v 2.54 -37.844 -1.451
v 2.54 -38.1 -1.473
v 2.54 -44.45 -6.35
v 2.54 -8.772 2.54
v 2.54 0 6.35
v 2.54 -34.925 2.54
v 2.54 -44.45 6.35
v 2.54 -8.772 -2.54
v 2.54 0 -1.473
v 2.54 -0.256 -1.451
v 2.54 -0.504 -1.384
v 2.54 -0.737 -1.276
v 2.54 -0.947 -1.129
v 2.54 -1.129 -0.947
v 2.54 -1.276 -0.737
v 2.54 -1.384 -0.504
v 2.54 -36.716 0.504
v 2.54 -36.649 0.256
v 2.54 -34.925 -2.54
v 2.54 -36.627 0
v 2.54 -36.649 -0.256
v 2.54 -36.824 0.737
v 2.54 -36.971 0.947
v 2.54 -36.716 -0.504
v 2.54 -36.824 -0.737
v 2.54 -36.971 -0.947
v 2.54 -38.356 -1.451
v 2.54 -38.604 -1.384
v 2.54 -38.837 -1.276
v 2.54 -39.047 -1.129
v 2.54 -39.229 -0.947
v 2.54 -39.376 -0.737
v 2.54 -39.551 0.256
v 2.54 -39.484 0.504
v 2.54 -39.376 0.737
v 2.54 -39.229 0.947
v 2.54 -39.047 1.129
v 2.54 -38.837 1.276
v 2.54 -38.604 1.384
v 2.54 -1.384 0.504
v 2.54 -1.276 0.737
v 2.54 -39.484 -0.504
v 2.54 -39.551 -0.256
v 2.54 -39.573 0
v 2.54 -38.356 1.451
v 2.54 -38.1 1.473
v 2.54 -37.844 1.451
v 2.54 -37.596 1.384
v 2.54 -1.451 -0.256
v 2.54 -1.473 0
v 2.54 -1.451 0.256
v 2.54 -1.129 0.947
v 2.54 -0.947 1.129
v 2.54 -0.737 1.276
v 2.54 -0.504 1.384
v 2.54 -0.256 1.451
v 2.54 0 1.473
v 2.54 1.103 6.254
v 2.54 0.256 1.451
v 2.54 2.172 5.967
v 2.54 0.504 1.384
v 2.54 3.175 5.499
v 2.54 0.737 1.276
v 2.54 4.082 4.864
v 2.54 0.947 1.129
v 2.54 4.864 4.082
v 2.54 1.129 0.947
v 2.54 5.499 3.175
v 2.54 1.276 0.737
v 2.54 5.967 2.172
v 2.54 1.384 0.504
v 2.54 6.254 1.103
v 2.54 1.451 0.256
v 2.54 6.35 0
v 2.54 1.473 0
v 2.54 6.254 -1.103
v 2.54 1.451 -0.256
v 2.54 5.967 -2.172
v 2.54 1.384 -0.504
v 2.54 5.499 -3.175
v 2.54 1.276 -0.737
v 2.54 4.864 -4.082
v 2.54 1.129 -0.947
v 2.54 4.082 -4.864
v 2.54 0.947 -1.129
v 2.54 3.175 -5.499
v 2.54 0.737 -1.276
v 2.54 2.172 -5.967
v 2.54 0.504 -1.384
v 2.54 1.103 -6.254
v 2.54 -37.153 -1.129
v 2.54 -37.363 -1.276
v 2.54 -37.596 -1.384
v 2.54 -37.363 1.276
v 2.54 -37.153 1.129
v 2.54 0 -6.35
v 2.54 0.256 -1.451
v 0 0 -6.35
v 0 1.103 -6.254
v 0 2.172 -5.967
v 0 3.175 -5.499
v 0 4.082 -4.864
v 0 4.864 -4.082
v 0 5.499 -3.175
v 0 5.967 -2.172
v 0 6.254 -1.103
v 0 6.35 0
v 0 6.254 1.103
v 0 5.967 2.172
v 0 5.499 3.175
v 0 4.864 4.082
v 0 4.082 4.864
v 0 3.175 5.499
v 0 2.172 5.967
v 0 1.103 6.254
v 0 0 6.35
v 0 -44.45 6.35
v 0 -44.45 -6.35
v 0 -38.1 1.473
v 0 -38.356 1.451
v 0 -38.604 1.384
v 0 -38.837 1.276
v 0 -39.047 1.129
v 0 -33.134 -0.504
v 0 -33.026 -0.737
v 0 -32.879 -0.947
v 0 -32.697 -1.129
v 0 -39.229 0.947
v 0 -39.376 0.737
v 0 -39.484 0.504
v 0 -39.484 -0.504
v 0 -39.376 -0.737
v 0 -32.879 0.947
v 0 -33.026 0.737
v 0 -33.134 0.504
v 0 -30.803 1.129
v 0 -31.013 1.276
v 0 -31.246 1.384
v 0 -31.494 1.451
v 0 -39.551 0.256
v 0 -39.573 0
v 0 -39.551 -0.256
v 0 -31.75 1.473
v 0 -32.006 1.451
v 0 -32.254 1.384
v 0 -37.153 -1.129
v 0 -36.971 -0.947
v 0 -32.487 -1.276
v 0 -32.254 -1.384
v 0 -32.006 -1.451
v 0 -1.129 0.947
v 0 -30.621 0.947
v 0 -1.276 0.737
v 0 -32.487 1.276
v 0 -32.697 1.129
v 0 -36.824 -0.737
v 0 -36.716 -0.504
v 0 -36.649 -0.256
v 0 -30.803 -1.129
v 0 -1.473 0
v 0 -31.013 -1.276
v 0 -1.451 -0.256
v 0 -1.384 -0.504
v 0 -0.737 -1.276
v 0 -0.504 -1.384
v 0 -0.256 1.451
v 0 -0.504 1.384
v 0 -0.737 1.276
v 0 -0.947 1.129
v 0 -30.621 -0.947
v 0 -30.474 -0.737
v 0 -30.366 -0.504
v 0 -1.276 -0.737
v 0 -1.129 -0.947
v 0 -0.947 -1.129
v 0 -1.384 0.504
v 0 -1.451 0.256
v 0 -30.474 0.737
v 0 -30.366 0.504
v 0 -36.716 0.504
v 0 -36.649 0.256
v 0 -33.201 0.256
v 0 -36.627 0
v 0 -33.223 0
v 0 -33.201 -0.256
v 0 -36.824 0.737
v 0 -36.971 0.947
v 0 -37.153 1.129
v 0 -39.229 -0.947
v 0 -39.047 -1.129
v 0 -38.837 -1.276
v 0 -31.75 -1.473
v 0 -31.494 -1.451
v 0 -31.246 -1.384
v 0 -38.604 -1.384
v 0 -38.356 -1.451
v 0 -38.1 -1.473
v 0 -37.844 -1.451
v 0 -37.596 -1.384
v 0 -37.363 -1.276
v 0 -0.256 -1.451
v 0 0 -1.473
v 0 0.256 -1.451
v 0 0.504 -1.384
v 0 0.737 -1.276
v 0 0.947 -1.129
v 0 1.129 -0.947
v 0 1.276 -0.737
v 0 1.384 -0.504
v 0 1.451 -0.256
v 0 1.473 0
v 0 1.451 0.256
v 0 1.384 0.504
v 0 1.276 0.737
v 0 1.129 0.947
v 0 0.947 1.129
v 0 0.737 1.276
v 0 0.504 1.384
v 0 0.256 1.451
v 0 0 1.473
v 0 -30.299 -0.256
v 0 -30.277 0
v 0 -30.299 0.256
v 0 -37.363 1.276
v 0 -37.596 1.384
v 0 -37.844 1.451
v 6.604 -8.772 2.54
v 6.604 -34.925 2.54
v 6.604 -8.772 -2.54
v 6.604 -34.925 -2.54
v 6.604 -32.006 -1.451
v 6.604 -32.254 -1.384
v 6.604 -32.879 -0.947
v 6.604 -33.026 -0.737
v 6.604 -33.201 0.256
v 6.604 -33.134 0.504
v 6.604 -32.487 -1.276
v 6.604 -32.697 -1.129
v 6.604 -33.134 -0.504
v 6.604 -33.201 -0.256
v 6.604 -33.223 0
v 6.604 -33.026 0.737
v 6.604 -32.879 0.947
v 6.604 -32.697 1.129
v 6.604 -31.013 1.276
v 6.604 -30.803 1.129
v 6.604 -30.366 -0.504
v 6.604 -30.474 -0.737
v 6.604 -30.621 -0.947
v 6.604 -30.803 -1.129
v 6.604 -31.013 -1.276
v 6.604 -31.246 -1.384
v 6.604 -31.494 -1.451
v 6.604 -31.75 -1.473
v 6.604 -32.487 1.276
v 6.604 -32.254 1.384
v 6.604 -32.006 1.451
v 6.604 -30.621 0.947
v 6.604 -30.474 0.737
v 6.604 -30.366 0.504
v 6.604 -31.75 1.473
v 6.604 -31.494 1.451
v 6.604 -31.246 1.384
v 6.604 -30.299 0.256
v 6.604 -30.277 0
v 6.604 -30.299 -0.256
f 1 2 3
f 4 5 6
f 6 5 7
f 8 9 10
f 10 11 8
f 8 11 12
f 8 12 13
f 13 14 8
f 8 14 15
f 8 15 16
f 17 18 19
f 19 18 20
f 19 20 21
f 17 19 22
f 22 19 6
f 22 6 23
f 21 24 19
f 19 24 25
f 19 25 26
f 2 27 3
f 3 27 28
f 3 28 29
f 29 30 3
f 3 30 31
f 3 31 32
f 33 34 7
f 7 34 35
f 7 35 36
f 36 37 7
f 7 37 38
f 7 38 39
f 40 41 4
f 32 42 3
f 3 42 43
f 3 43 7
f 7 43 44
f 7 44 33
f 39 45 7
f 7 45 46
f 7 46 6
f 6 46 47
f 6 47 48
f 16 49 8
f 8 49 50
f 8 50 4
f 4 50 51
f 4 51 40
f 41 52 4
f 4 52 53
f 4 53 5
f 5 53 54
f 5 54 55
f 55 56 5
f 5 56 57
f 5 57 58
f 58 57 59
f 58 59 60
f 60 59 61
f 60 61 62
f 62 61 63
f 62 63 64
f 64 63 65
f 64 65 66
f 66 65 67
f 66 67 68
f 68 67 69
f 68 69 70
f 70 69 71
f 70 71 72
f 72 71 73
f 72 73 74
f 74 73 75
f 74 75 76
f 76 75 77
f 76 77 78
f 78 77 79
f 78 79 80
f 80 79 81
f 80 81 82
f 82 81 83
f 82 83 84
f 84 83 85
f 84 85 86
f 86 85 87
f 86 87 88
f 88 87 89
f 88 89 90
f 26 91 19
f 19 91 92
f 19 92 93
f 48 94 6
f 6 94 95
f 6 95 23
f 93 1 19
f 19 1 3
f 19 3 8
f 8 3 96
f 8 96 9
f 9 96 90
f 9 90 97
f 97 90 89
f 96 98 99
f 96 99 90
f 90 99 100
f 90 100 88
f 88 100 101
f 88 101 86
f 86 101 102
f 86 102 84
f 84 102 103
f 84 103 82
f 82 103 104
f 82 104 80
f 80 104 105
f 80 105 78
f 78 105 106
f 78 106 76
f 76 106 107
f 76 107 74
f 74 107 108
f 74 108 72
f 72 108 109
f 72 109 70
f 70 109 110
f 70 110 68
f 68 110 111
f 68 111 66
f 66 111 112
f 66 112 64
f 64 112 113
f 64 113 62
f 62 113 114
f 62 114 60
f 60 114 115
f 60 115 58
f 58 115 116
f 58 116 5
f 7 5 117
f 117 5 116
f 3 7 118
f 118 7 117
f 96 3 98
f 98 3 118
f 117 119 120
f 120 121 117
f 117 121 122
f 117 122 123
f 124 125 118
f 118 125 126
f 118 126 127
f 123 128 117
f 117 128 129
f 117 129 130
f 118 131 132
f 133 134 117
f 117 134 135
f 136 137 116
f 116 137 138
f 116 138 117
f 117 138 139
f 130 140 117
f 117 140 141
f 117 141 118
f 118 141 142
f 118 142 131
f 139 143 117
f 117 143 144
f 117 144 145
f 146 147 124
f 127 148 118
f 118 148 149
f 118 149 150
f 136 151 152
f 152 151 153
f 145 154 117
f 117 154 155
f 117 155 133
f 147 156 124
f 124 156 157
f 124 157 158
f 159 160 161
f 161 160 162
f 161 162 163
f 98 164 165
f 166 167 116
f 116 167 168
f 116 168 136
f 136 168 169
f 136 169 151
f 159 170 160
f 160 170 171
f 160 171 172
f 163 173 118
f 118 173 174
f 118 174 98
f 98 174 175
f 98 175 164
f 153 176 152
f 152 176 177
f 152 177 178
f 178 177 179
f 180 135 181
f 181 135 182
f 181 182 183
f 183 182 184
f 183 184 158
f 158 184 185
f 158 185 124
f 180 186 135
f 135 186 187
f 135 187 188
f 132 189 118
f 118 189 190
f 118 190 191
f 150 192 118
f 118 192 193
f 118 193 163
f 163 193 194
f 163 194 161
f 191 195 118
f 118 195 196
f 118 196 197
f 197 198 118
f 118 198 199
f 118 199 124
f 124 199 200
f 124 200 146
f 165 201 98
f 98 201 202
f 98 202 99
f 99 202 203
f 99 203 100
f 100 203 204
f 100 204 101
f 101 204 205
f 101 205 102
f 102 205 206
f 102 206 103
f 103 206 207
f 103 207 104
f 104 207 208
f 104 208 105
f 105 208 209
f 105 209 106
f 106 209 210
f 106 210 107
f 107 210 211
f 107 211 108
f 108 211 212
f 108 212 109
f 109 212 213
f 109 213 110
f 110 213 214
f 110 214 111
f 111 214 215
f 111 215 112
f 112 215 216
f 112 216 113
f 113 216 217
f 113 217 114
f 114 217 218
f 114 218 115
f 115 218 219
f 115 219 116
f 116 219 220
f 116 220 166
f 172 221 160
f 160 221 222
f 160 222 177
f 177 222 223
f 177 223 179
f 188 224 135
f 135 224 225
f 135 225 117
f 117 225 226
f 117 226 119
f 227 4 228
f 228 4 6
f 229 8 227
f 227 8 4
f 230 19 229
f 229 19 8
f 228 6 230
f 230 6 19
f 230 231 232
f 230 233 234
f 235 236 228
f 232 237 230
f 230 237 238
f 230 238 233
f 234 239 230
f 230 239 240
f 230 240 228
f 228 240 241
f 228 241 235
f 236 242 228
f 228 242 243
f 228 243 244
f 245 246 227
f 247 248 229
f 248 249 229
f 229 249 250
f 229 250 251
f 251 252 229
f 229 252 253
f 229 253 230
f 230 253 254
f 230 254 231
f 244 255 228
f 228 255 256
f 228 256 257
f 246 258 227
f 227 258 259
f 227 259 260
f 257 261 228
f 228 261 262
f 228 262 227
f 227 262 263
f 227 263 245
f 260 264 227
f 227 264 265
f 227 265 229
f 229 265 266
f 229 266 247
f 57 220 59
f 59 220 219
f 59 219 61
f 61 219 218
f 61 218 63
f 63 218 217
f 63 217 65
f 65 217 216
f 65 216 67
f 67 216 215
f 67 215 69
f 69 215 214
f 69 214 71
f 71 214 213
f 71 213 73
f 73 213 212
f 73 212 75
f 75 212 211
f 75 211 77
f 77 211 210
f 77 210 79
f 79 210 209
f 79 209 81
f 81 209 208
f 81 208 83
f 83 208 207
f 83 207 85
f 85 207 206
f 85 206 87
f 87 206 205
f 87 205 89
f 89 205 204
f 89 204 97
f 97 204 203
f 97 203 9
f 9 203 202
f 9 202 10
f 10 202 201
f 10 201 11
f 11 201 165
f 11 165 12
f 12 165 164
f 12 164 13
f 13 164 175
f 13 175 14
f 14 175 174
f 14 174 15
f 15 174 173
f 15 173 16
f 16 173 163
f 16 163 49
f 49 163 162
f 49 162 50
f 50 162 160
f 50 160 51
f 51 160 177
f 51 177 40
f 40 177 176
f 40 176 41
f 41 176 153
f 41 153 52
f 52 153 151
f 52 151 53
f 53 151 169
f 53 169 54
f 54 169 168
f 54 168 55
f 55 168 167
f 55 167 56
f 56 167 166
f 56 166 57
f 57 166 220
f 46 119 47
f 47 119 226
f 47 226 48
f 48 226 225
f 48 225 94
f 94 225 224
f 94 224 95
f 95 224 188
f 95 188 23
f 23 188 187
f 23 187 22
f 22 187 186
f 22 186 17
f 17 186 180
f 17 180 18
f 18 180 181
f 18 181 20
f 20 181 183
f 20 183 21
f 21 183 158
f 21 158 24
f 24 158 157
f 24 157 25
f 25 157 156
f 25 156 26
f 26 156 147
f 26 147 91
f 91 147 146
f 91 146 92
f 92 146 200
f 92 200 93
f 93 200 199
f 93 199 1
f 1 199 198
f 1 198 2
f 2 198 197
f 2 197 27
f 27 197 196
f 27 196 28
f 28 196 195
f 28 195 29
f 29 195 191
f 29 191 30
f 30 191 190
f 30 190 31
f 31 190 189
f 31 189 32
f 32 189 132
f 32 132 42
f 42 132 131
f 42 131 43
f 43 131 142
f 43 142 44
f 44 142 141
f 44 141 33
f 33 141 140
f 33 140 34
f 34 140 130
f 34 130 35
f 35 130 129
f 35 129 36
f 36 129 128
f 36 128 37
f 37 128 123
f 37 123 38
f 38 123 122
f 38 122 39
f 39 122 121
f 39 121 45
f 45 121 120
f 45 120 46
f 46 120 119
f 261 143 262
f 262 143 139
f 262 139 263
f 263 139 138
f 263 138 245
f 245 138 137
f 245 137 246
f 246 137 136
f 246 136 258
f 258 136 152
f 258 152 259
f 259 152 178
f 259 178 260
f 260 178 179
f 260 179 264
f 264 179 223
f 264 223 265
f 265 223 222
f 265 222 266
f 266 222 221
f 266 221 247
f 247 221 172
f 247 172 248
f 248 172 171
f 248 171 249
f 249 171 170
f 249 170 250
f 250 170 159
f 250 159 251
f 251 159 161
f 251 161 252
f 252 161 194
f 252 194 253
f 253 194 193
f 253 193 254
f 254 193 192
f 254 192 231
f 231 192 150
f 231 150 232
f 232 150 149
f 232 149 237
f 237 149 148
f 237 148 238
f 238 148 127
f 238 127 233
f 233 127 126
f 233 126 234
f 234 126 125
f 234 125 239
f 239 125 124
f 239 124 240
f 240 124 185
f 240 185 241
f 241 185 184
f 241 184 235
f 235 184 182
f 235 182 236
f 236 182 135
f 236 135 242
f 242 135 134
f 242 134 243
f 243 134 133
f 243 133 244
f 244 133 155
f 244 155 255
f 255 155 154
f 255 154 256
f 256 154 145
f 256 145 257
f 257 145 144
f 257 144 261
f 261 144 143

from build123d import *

# Parameters (mm, degrees)
BOSS_EXTRUDE1_DEPTH     = 2.54
SKETCH2_W               = 5.08
SKETCH2_H               = 26.152706233
BOSS_EXTRUDE2_DEPTH     = 4.064
CUT_EXTRUDE1_DEPTH      = 46.384334478
CUT_EXTRUDE1_DEPTH_BACK = 46.384334478
SKETCH3_R               = 1.4732
F_4_CLEARANCE_HOLE1_D   = 2.9464


with BuildPart() as part:
    # Sketch1 → Boss-Extrude1 (new body)
    with BuildSketch(Plane(origin=(0, 0, 0), x_dir=(0, 0, -1), z_dir=(1, 0, 0))):
        with BuildLine():
            Line((-6.35, 0), (-6.35, -44.45))
            Line((-6.35, -44.45), (6.35, -44.45))
            Line((6.35, -44.45), (6.35, 0))
            ThreePointArc((6.35, 0), (0, 6.35), (-6.35, 0))
        make_face()
    extrude(amount=BOSS_EXTRUDE1_DEPTH)

    # Sketch2 → Boss-Extrude2 (add)
    with BuildSketch(Plane(origin=(2.54, 0, 0), x_dir=(0, 0, -1), z_dir=(1, 0, 0))):
        with Locations((0, -21.848646884)):
            Rectangle(SKETCH2_W, SKETCH2_H)
    extrude(amount=BOSS_EXTRUDE2_DEPTH)

    # Sketch3 → Cut-Extrude1 (cut, two sides: drawn at the far end of the back side and taken through both)
    with BuildSketch(Plane.ZY.offset(-CUT_EXTRUDE1_DEPTH_BACK)):
        Circle(SKETCH3_R)
    extrude(amount=CUT_EXTRUDE1_DEPTH + CUT_EXTRUDE1_DEPTH_BACK, mode=Mode.SUBTRACT)

    # #4 Clearance Hole1 (through all)
    with Locations(Plane.ZY):
        with Locations((0, -31.75), (0, -38.1)):
            Hole(F_4_CLEARANCE_HOLE1_D / 2)


solid = part.part
